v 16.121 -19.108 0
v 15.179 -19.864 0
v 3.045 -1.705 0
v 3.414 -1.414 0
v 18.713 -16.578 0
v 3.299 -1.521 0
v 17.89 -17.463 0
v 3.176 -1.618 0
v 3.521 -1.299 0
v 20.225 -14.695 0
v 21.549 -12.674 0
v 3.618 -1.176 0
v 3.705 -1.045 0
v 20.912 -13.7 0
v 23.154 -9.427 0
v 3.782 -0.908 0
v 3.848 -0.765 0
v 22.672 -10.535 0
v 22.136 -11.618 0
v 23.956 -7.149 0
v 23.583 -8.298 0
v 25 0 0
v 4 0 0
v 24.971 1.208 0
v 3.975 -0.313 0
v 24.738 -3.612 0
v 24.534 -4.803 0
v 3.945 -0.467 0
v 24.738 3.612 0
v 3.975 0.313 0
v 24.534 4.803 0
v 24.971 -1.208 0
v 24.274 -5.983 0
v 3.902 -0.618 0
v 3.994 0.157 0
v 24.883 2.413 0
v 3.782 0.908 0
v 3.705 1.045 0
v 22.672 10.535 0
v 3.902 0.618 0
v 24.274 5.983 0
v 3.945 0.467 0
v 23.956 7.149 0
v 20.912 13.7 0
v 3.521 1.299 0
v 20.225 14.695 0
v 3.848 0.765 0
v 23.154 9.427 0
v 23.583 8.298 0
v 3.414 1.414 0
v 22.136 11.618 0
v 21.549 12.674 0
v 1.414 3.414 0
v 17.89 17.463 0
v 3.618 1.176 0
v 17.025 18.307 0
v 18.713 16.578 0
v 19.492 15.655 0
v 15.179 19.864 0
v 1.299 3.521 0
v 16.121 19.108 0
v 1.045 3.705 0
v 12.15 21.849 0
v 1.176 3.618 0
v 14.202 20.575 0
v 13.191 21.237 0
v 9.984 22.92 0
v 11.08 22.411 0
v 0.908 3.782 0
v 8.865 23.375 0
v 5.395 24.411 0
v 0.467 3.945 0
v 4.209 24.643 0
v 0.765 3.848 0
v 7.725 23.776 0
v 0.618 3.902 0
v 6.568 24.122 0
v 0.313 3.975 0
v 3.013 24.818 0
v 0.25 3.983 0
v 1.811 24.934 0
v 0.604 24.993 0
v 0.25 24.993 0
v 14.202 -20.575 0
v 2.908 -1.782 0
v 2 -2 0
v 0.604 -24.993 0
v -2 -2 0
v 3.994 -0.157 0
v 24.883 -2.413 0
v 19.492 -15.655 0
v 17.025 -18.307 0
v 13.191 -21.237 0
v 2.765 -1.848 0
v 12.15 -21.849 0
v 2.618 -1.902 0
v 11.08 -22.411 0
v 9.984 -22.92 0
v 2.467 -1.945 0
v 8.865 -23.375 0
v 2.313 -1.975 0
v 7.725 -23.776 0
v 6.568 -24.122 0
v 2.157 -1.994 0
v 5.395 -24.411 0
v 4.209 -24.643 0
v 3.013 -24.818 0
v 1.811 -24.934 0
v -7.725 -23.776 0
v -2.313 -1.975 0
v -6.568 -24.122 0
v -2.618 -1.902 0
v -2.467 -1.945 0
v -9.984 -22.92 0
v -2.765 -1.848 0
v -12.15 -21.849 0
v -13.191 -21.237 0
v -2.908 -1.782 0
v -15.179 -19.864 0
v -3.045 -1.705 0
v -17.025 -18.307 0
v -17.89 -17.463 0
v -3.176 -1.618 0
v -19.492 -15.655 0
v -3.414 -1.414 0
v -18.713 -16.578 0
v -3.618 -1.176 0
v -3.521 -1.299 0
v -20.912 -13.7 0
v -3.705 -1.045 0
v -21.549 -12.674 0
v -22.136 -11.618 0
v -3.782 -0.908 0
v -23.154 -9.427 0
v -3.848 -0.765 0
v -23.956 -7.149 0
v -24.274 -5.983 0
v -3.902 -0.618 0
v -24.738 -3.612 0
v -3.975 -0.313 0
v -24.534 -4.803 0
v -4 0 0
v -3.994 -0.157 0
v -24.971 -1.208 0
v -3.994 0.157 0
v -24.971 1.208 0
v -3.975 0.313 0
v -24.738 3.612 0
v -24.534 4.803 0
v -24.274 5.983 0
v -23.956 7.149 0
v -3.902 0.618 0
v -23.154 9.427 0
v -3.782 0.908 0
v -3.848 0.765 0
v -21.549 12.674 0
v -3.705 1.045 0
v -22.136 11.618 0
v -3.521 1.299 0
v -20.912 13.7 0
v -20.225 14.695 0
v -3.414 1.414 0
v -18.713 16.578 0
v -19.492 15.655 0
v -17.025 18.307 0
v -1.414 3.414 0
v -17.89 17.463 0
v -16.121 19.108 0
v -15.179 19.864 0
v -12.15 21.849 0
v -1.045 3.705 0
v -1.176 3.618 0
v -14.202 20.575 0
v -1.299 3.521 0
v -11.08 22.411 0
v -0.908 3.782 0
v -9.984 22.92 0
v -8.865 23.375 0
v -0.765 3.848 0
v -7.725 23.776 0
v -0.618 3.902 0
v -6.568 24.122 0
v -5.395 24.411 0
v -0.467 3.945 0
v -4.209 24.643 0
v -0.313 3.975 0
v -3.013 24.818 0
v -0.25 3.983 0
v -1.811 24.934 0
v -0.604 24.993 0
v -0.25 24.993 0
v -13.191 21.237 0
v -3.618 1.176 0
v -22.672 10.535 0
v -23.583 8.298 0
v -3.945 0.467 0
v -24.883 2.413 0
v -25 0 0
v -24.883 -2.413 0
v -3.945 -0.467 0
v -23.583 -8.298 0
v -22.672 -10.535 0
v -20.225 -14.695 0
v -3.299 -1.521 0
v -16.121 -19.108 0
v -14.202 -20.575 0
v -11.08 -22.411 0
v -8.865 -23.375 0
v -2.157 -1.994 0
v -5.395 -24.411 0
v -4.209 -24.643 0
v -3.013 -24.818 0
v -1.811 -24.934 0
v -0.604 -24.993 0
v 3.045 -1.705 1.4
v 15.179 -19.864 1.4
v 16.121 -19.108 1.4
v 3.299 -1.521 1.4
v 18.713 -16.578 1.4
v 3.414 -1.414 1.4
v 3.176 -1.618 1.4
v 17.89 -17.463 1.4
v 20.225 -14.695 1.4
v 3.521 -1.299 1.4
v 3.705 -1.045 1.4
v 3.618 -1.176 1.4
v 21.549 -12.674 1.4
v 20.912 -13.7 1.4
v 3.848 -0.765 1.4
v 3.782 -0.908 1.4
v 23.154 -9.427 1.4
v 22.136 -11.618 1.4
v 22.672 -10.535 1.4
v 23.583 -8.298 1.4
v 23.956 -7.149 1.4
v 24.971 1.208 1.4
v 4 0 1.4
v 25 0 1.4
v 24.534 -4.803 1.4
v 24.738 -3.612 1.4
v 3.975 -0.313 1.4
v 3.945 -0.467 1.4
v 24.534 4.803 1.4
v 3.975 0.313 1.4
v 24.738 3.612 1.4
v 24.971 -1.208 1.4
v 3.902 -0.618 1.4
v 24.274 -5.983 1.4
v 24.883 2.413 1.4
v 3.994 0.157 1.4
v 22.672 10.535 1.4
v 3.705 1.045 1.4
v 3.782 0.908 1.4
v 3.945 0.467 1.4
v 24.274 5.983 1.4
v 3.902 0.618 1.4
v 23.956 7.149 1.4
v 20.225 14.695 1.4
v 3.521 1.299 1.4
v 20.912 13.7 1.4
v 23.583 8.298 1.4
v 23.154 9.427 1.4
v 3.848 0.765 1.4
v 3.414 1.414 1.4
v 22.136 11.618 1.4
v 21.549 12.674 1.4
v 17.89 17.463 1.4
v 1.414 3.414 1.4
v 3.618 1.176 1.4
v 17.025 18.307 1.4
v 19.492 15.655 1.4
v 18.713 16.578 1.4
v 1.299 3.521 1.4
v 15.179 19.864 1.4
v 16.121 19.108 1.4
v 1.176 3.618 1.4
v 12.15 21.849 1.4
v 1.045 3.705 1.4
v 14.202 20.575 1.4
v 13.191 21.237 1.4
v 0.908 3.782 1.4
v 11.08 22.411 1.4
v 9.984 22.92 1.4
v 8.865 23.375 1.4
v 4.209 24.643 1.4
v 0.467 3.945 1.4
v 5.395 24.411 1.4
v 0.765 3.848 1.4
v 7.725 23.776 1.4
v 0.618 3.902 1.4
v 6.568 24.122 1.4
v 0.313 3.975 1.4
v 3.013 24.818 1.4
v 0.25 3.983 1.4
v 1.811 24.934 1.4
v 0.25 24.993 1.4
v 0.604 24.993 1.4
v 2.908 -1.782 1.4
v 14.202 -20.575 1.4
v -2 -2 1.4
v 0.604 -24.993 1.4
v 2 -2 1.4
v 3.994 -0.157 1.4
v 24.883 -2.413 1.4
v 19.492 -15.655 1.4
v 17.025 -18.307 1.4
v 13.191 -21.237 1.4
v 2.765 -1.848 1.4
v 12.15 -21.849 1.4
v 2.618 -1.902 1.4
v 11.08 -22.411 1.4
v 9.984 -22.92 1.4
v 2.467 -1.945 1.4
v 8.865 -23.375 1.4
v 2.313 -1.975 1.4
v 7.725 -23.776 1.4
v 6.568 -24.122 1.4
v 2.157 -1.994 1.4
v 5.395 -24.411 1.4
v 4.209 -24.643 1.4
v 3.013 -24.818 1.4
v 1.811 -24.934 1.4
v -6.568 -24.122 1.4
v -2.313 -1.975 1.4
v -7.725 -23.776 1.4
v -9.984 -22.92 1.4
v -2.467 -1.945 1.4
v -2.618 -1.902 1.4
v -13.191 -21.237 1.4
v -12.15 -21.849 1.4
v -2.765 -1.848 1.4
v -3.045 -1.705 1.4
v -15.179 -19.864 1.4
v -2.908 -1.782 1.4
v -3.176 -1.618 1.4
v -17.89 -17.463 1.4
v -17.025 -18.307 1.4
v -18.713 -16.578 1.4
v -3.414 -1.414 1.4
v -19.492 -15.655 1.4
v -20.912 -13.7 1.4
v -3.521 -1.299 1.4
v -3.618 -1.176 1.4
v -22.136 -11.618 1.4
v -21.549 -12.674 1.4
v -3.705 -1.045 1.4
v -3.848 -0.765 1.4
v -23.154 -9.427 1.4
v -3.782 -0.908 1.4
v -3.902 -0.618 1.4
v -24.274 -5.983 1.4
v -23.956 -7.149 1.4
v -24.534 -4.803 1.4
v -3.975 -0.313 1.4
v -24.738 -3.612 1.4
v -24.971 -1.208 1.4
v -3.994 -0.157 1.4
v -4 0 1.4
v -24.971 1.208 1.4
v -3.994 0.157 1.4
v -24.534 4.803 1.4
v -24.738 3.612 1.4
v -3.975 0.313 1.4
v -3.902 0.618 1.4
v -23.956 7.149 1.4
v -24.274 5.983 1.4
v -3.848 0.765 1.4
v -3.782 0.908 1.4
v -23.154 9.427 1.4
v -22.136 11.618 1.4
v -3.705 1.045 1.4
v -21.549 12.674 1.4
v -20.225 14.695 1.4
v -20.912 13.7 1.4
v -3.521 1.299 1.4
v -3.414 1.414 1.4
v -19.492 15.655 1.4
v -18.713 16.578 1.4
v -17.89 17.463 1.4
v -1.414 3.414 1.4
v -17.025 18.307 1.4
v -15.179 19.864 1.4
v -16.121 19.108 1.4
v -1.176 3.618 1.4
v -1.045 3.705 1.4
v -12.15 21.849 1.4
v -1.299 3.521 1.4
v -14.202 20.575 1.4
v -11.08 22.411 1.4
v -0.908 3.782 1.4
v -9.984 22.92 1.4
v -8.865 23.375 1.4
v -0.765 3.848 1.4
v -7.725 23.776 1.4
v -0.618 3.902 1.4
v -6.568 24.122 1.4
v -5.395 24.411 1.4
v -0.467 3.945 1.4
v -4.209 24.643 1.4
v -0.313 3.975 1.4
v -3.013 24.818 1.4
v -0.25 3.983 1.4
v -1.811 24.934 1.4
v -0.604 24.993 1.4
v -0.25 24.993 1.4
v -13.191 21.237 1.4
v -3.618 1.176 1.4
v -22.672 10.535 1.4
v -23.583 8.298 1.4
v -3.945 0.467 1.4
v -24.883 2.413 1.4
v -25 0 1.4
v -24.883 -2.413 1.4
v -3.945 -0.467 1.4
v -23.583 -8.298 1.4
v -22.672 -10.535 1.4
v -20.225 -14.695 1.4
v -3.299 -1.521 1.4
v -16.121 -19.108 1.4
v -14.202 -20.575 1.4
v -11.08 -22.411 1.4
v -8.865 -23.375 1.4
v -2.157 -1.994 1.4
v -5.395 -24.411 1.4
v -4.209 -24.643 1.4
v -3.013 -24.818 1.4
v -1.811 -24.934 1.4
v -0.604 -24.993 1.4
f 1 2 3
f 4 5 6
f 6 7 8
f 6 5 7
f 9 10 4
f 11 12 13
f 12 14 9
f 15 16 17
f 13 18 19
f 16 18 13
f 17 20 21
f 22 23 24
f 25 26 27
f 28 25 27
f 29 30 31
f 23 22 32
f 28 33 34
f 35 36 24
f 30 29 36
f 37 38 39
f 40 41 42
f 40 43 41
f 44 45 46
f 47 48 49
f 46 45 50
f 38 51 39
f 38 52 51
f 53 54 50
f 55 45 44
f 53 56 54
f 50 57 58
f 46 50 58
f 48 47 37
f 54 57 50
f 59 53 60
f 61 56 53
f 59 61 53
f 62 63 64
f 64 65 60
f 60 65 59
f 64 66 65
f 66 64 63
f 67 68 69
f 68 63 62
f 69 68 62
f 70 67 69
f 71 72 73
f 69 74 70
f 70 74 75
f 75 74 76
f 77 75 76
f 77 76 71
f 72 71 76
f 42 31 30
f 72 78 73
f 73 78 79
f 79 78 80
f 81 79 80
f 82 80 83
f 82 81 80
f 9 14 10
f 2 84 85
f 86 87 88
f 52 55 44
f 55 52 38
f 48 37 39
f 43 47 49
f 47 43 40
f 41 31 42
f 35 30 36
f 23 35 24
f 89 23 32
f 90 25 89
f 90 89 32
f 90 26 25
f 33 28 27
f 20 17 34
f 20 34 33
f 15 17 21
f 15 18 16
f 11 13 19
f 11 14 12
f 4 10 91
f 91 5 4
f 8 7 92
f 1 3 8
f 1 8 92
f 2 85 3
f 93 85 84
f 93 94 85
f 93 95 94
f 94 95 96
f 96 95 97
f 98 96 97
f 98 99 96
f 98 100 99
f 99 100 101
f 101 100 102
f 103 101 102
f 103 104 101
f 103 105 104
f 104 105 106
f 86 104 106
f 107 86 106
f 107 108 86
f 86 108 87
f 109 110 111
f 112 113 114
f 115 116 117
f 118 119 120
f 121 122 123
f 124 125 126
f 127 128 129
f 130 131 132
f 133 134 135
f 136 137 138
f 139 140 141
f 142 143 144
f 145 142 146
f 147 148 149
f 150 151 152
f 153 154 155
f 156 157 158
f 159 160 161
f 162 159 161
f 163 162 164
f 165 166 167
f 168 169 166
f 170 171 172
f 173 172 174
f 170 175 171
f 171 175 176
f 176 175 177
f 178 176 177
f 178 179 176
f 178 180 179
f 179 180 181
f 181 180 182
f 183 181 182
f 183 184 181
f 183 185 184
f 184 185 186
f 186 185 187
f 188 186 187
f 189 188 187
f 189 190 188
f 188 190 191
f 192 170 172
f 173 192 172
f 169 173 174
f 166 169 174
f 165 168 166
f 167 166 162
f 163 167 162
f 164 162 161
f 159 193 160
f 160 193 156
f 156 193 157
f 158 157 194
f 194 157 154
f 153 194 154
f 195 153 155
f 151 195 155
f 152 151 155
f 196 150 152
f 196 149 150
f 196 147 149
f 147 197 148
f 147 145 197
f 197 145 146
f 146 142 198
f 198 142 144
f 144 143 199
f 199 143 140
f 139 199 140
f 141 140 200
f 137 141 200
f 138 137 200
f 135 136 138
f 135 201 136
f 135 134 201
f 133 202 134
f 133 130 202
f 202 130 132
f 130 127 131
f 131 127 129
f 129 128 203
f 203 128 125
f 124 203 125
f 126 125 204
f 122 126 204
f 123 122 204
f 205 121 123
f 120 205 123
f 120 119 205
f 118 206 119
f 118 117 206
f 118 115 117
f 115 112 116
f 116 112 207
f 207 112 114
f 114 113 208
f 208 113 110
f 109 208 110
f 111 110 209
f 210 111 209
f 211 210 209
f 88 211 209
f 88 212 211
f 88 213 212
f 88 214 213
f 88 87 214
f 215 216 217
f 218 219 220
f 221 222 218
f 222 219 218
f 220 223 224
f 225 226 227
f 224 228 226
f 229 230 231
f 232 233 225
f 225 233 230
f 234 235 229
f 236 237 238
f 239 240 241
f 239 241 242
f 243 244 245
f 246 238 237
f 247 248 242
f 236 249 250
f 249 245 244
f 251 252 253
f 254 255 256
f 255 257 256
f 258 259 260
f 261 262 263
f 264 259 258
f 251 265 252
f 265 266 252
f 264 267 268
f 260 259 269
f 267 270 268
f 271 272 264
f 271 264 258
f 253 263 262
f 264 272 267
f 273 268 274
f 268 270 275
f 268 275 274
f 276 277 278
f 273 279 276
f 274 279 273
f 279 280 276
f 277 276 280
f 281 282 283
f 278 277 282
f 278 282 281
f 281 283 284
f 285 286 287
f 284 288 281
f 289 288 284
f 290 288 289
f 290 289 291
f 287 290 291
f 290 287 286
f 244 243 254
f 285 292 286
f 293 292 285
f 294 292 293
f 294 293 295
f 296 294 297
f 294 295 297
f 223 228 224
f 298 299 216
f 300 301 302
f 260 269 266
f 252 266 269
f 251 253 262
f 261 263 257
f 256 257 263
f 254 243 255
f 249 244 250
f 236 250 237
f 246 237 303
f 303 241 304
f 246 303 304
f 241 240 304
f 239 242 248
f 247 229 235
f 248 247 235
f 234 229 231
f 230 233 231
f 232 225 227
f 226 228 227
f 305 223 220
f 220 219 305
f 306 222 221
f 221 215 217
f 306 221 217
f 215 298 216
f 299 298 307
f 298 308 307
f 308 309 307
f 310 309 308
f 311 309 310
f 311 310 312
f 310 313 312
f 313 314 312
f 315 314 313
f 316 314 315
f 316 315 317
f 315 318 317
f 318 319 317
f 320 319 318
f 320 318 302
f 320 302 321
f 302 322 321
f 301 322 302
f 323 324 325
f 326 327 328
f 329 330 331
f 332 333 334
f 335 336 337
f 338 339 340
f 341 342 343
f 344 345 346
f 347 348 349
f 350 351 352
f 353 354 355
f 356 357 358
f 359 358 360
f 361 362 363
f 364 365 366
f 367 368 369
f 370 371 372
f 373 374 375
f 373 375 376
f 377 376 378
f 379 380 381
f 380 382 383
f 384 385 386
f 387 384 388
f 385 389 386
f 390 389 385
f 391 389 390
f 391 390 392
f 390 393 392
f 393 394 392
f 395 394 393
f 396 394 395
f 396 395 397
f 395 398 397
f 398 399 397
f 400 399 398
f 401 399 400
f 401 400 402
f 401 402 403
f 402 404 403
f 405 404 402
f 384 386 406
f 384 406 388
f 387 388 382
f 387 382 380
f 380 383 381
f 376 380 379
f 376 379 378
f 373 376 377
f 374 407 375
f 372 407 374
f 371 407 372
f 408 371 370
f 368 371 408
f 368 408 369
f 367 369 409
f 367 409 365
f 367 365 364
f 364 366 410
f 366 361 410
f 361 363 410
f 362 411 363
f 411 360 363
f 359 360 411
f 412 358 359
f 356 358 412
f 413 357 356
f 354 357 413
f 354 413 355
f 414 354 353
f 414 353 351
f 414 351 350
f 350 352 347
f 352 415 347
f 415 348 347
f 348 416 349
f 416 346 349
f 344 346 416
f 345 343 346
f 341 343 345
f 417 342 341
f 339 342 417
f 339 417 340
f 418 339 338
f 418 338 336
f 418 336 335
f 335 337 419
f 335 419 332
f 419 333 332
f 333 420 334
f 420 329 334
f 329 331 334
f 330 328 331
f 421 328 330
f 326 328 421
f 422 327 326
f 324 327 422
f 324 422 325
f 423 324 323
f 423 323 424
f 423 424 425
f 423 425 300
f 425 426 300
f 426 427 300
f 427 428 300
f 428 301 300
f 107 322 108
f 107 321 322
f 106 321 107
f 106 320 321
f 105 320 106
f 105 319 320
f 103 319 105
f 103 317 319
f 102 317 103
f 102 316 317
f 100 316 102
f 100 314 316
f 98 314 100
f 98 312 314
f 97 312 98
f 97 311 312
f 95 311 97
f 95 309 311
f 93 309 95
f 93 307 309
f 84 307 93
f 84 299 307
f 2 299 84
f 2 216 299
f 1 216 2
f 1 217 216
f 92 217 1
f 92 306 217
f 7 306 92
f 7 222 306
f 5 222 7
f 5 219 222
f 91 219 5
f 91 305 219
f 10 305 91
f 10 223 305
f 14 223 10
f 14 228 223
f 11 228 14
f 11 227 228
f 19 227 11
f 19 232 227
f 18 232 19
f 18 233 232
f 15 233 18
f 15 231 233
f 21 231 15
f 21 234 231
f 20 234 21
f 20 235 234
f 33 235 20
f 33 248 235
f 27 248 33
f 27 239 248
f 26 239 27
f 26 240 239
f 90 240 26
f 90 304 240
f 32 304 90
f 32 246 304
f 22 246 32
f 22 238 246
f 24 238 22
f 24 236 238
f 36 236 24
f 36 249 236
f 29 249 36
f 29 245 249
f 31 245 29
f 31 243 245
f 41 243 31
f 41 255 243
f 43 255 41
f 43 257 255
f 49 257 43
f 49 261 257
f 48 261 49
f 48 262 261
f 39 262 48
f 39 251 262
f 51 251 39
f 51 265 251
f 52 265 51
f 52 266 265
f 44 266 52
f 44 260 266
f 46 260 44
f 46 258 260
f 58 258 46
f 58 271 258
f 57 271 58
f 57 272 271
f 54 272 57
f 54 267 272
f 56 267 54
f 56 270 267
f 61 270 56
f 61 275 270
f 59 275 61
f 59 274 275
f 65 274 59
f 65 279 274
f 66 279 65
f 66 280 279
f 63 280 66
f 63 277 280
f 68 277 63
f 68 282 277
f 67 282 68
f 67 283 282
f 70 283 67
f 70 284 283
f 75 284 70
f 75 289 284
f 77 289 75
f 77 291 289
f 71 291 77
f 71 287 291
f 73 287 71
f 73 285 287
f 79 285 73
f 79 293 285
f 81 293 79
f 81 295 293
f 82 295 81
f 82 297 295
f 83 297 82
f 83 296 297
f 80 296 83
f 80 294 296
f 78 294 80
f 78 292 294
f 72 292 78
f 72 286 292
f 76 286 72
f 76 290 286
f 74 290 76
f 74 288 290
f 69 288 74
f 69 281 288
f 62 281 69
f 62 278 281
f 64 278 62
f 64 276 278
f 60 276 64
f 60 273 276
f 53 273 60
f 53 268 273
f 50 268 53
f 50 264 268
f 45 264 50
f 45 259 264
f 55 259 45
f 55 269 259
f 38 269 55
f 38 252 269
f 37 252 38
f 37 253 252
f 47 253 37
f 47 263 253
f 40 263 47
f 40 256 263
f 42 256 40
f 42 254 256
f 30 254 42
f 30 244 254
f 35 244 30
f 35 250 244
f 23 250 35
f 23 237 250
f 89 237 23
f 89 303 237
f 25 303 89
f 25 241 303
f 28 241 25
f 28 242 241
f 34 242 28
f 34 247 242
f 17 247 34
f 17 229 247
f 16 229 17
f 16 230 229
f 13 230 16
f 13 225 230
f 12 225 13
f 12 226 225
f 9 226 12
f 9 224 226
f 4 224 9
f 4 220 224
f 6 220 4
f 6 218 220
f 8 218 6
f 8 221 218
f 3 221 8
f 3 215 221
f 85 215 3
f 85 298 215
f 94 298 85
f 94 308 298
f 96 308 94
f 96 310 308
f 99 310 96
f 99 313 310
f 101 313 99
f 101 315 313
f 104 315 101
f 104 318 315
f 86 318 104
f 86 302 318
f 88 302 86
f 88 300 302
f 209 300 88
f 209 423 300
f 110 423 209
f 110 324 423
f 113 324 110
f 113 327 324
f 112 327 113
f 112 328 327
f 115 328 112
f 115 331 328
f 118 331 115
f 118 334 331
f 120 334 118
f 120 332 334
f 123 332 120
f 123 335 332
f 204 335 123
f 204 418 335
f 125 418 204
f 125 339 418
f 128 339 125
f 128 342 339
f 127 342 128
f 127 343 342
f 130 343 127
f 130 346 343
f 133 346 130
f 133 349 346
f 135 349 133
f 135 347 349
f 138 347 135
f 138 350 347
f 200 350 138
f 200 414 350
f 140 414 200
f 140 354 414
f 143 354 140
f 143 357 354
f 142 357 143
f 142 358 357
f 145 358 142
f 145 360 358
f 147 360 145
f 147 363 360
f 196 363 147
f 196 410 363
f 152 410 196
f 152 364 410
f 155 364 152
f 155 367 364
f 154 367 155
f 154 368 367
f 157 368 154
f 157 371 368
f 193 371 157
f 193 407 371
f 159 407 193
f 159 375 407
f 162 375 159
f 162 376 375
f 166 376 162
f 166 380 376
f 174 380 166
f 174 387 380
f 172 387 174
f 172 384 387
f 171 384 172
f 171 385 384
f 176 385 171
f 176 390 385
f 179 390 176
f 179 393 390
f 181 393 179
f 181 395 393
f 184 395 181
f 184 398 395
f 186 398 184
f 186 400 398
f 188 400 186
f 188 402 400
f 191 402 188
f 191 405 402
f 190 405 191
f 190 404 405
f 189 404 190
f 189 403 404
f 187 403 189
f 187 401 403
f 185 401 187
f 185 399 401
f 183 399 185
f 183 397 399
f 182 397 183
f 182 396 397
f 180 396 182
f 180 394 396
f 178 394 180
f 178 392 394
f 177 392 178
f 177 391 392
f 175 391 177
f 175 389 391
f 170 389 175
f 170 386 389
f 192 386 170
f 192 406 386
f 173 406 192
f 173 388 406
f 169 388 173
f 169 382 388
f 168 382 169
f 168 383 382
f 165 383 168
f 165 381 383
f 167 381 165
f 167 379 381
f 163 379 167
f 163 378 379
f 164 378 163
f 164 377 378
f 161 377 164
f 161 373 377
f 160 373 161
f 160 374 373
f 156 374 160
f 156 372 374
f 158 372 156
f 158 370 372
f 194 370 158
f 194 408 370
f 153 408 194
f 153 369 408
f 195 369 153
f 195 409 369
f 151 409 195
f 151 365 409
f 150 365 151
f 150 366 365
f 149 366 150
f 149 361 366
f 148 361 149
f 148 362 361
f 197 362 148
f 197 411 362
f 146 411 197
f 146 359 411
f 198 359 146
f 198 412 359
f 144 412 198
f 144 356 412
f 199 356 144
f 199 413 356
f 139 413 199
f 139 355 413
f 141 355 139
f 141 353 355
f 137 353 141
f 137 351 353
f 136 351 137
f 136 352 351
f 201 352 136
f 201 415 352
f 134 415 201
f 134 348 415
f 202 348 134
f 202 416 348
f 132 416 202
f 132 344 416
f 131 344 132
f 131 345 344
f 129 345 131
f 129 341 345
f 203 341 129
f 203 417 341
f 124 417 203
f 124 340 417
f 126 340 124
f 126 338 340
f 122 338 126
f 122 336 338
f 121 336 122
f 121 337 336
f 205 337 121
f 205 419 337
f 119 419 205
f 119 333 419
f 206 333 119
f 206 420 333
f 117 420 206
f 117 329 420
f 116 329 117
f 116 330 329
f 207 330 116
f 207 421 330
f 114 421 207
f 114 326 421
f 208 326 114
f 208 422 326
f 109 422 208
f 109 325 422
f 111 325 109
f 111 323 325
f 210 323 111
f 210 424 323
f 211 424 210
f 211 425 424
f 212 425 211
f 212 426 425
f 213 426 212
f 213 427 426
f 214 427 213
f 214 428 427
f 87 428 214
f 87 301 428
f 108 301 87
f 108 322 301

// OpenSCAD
outer_hole_d = 50;
cable_d = 4;
slit_w = .5;
h = 1.4;

linear_extrude(h) {
	difference() {
		circle(d = outer_hole_d, $fn = $preview ? 30 : 130);
		// inner slit
		hull() {
			$fn = $preview ? 20 : 80;
			for(x = [-cable_d/2, cable_d/2])
				translate([x, 0])
					circle(d = cable_d);
			// just to prevent cable quetschen
			translate([0, cable_d/2])
				circle(d = cable_d);
		}
		// main slit
		translate([-slit_w/2,0])
			square([slit_w, outer_hole_d/2 + 1]);
	}
}
